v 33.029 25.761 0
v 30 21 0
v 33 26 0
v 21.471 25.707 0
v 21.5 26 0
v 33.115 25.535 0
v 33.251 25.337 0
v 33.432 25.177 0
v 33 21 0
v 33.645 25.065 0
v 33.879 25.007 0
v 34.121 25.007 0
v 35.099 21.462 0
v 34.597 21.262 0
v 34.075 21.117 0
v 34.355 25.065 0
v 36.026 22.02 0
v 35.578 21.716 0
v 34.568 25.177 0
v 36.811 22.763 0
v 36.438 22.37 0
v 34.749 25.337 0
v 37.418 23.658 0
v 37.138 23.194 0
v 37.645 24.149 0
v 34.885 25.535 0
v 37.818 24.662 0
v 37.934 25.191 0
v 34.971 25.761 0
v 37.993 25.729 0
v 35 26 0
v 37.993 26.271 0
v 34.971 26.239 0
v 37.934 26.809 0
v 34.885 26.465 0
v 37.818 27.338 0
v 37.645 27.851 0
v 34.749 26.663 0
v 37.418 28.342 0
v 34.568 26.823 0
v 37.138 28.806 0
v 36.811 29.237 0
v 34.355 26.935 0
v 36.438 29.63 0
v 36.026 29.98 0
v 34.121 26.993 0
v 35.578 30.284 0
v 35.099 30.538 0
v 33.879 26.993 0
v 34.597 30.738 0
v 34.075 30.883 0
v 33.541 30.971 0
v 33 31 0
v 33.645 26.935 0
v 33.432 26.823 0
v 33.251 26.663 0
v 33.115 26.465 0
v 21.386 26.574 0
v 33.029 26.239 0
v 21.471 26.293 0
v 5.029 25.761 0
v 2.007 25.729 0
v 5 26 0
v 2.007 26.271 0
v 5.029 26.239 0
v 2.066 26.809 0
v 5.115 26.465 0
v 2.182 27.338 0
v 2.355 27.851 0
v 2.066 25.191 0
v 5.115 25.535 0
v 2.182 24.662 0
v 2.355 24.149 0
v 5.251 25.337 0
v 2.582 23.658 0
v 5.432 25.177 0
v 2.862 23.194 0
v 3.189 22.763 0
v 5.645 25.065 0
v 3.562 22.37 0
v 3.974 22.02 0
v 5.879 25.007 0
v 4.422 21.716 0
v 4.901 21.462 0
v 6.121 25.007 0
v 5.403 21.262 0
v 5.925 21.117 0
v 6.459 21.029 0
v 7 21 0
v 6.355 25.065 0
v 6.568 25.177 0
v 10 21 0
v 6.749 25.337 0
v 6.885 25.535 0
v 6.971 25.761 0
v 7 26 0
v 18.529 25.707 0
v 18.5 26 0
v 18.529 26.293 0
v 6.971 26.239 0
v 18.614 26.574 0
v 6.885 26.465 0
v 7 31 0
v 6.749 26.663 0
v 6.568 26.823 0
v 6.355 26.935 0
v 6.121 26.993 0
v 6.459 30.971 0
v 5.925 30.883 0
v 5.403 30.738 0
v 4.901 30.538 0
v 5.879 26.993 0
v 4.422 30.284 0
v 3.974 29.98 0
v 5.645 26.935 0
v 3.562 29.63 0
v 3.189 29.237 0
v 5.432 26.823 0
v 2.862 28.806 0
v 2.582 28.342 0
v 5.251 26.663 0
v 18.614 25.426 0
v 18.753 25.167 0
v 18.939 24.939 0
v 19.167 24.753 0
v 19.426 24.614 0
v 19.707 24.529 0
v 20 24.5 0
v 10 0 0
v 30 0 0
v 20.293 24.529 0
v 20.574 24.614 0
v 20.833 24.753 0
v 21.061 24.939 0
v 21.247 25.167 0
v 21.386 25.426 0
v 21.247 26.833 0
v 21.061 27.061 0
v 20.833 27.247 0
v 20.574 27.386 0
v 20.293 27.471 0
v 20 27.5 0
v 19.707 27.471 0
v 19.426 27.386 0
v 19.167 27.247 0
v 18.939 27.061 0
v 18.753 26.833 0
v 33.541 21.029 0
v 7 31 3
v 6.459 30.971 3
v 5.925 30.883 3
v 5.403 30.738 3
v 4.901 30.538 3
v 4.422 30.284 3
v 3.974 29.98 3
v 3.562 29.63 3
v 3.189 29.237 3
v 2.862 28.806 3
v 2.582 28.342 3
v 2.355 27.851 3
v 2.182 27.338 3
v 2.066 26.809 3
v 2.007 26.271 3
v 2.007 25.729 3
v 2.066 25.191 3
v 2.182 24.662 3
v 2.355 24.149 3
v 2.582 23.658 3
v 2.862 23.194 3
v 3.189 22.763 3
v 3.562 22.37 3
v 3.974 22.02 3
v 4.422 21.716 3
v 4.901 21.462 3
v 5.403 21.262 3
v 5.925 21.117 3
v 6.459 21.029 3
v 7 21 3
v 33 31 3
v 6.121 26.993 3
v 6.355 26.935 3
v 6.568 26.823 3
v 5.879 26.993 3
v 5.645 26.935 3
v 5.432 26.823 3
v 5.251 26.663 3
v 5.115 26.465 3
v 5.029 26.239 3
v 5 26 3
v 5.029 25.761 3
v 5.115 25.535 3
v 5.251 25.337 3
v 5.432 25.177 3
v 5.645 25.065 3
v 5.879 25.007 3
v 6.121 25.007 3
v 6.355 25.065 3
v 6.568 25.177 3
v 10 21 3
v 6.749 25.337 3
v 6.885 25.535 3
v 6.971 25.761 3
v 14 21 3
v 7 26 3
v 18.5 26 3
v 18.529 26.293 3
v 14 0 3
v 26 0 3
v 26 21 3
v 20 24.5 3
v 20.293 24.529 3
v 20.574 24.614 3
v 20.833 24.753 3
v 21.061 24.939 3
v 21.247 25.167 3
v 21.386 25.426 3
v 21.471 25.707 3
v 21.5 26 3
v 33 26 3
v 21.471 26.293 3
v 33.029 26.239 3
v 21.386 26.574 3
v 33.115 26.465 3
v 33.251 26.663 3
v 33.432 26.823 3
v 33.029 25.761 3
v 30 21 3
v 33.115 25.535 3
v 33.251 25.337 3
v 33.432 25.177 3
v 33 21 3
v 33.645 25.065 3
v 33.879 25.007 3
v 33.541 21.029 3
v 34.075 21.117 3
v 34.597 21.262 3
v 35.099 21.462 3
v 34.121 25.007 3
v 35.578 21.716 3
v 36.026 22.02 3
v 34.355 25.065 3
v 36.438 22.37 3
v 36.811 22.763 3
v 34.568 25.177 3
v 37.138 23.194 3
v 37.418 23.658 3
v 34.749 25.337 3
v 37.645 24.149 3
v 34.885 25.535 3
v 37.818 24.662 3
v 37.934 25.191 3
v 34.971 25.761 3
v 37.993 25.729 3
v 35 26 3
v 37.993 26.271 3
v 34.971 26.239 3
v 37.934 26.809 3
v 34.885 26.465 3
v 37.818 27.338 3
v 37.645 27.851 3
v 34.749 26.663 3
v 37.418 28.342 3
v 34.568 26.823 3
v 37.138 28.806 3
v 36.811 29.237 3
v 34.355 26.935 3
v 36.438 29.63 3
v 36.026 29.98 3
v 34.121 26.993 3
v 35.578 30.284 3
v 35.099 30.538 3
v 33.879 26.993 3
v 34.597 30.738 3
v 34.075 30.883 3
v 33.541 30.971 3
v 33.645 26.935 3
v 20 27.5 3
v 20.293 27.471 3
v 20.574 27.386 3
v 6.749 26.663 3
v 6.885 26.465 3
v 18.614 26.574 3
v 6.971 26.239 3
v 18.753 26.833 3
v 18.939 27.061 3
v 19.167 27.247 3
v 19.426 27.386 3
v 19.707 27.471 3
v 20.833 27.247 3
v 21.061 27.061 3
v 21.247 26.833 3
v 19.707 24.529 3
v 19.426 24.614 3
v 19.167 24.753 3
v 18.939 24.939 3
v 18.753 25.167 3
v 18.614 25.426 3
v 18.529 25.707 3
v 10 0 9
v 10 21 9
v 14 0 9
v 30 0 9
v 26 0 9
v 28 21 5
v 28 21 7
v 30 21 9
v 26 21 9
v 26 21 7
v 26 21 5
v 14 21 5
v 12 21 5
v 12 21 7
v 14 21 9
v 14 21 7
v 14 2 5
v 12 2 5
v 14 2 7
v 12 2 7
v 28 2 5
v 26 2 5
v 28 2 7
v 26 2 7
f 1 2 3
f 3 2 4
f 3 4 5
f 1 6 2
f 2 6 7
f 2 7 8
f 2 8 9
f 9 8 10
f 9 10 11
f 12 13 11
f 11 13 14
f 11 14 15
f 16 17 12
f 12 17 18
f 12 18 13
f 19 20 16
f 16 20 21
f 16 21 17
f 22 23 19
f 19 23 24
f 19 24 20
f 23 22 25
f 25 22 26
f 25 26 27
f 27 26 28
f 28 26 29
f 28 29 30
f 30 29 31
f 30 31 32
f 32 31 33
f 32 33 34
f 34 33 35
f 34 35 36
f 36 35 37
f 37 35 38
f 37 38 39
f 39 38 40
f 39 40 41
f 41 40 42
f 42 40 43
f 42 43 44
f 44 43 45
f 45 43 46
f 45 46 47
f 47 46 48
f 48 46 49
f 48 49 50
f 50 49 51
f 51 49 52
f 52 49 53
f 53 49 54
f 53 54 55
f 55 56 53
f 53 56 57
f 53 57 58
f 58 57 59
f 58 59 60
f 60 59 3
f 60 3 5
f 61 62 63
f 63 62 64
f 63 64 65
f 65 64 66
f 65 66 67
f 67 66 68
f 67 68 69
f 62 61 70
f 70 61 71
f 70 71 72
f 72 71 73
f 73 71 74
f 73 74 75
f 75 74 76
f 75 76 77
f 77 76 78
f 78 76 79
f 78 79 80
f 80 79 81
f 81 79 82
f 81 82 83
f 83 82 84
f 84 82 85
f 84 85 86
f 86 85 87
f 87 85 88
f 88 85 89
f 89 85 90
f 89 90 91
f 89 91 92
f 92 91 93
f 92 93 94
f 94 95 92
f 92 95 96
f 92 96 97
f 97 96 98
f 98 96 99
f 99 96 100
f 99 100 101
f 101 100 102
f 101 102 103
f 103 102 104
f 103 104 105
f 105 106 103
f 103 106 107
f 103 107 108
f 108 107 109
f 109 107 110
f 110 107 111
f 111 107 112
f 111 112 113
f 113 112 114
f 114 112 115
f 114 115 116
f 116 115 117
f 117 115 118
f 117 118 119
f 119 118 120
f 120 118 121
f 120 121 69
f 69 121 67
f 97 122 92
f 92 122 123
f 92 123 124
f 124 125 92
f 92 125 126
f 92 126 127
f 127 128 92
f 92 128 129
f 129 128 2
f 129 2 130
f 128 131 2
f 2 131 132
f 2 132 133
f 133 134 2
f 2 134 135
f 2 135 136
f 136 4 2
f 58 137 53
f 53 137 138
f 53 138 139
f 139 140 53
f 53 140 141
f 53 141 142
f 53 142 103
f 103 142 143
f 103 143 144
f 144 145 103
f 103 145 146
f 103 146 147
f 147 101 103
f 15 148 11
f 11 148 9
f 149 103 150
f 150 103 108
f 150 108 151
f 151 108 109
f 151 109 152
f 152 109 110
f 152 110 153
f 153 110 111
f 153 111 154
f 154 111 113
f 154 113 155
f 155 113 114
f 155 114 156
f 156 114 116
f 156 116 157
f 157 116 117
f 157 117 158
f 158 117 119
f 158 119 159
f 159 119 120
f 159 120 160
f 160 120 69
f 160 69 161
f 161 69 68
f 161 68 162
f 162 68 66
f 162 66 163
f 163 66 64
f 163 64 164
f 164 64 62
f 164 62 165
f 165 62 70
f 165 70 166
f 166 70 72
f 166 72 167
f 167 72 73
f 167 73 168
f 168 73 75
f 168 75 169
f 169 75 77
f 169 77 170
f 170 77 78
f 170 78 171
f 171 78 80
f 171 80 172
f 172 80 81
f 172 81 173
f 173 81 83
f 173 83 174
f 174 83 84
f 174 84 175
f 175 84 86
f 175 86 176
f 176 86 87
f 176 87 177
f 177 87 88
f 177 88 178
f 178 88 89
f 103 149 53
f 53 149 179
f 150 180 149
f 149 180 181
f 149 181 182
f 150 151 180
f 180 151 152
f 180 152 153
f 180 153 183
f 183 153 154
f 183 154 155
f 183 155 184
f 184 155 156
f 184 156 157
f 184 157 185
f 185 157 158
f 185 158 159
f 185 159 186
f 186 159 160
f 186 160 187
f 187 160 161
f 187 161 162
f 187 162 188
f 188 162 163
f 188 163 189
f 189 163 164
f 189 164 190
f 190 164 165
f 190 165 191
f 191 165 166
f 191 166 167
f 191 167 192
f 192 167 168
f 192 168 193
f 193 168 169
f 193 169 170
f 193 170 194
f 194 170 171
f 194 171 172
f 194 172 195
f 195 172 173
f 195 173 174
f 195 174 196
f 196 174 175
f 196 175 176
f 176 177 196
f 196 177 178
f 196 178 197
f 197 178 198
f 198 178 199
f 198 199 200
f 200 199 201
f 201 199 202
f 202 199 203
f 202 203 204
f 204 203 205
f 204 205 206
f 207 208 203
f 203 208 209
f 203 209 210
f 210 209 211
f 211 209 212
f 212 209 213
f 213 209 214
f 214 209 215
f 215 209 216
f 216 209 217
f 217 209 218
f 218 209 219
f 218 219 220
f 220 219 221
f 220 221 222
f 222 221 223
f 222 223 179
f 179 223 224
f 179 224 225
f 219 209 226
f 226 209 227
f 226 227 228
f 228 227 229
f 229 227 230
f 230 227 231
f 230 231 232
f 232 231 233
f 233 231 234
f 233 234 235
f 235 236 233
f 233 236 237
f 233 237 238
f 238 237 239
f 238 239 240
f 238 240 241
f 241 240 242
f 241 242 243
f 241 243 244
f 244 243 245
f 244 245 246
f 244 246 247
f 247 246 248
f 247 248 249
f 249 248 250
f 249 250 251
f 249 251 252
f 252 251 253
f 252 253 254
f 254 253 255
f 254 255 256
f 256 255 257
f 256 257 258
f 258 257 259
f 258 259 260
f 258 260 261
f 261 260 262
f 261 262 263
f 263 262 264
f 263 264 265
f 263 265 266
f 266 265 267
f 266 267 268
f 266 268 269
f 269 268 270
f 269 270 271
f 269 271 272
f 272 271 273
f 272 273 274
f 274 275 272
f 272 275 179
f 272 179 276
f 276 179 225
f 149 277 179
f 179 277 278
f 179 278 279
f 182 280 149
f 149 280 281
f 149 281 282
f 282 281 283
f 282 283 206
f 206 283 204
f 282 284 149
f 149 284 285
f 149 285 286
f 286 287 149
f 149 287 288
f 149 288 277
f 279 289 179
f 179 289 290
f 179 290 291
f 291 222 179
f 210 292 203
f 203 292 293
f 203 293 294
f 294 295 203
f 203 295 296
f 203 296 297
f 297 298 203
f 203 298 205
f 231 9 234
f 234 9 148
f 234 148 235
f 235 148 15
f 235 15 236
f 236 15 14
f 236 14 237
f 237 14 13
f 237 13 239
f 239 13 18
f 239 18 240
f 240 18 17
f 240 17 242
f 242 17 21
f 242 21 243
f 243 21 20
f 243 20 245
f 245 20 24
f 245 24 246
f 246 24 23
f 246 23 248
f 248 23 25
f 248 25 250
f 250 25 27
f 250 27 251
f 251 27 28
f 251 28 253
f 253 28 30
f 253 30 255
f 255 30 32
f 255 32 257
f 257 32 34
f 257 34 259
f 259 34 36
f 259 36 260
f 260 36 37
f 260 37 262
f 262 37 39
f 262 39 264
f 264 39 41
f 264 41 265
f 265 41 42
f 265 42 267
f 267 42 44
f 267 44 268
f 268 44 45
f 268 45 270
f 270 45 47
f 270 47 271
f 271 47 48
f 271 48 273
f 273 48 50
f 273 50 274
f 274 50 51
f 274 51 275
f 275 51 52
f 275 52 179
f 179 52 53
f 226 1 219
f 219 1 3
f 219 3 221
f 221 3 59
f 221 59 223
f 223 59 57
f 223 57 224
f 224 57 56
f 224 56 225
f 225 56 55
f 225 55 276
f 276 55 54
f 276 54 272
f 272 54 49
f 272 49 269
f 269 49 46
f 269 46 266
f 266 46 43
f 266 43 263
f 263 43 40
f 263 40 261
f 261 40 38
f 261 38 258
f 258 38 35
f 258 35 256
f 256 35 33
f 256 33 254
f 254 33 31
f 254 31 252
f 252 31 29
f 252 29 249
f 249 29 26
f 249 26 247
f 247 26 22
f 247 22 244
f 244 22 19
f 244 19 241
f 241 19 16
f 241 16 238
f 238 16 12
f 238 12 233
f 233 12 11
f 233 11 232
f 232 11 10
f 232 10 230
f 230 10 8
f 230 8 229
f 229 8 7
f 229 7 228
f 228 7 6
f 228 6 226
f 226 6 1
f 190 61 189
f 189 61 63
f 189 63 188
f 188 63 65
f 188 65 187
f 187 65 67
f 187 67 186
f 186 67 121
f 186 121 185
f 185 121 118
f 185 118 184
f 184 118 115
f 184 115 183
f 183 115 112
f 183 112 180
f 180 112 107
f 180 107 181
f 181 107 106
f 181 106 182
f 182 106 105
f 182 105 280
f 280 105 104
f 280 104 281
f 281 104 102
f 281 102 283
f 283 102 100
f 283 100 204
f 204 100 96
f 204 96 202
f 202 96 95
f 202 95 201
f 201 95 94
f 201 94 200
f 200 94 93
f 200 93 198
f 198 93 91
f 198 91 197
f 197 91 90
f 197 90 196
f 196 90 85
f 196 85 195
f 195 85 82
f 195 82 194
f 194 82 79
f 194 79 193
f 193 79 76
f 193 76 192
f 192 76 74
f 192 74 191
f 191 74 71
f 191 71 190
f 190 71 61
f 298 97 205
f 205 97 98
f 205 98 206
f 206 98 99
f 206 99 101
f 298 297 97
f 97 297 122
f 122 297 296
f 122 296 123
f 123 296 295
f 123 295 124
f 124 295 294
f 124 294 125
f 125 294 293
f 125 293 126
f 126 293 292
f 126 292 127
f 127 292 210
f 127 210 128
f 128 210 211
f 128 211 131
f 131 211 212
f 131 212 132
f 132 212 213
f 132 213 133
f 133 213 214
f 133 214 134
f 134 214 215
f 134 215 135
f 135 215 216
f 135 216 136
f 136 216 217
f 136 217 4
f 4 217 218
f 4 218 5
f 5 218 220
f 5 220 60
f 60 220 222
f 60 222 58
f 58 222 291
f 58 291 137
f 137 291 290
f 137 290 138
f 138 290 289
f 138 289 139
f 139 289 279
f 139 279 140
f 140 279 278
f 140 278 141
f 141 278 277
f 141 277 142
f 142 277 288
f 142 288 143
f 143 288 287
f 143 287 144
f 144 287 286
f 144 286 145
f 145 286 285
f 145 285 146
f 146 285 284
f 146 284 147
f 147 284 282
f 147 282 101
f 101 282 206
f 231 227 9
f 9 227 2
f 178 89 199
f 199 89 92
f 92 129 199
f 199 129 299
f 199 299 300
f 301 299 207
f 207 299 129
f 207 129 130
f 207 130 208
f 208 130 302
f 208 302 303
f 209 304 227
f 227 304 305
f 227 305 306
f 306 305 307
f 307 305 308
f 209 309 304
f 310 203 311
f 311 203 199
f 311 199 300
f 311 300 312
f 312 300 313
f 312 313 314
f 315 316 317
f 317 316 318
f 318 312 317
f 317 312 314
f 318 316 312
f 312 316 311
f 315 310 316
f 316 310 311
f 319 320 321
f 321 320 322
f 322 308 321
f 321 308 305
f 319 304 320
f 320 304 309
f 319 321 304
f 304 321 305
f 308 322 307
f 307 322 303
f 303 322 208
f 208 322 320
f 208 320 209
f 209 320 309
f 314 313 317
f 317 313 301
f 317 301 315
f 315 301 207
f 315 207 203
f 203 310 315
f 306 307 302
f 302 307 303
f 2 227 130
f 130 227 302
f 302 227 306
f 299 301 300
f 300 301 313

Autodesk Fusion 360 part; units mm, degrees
sketch "Sketch1" plane through (0, 0, 0) normal (0, 0, 1) x (1, 0, 0)
  line L0 (0, 0) -> (35, 0)
  line L1 (35, 0) -> (35, 35)
  line L2 (35, 35) -> (0, 35)
  line L3 (0, 35) -> (0, 0)
  dimension "d1" = 35
  dimension "d2" = 35
extrude "Extrude1" add sketch "Sketch1" along normal blind 3
sketch "Sketch2" plane through (0, 0, 3) normal (0, 0, 1) x (-1, 0, 0)
  line L0 (0, -35) -> (0, 0)
  line L1 (0, 0) -> (-35, 0)
  line L2 (-35, 0) -> (-35, -35)
  line L3 (-35, -35) -> (0, -35)
  line L4 (-10, -35) -> (-35, -35)
  line L5 (-35, -35) -> (-35, -17.5)
  line L6 (-35, -17.5) -> (-10, -17.5)
  line L7 (-10, -17.5) -> (-10, -35)
  dimension "d5" = 25
  dimension "d6" = 17.5
extrude "Extrude2" cut sketch "Sketch2" against normal blind 3 contours L2 L3 L4 L5 L6 L7
sketch "Sketch6" plane through (0, 0, 3) normal (0, 0, 1) x (-1, 0, 0)
  line L0 (-35, -17.5) -> (-10, -17.5)
  line L1 (-10, -17.5) -> (-10, -35)
  line L2 (-10, -35) -> (0, -35)
  line L3 (0, -35) -> (0, 0)
  line L4 (0, 0) -> (-35, 0)
  line L5 (-35, 0) -> (-35, -17.5)
  line L6 (-10, -17.5) -> (-14, -17.5)
  line L7 (-14, -17.5) -> (-14, 0)
  line L8 (-14, 0) -> (-10, 0)
  line L9 (-10, 0) -> (-10, -17.5)
  dimension "d23" = 4
  dimension "d24" = 17.5
extrude "Extrude6" add sketch "Sketch6" along normal blind 6 contours L0 L4 L6 L7 L8 L9
extrude "Extrude7" cut 1 faces at (35, 5.8333, 1) along direction (-1, 0, 0) blind 5
sketch "Sketch7" plane through (0, 0, 3) normal (0, 0, 1) x (-1, 0, 0)
  line L0 (-30, 0) -> (-30, -17.5)
  line L1 (-30, -17.5) -> (-14, -17.5)
  line L2 (-14, -17.5) -> (-14, 0)
  line L3 (-14, 0) -> (-30, 0)
  line L4 (-30, -17.5) -> (-26, -17.5)
  line L5 (-26, -17.5) -> (-26, 0)
  line L6 (-26, 0) -> (-30, 0)
  line L7 (-30, 0) -> (-30, -17.5)
  dimension "d29" = 4
  dimension "d30" = 17.5
extrude "Extrude8" add sketch "Sketch7" along normal blind 6 contours L0 L1 L3 L4 L5 L6 L7
extrude "Extrude9" add 1 faces at (28.6667, 17.5, 4) along direction (0, 1, 0) blind 3.5
sketch "Sketch8" plane through (14, 0, 0) normal (1, 0, 0) x (0, 1, 0)
  line L0 (0, 3) -> (21, 3)
  line L1 (21, 3) -> (21, 9)
  line L2 (21, 9) -> (0, 9)
  line L3 (0, 9) -> (0, 3)
  line L4 (0, 7) -> (21, 7)
  line L5 (21, 7) -> (21, 5)
  line L6 (21, 5) -> (0, 5)
  line L7 (0, 5) -> (0, 7)
  dimension "d35" = 2
  dimension "d36" = 2
extrude "Extrude10" cut sketch "Sketch8" against normal blind 2 contours L1 L3 L4 L5 L6 L7
sketch "Sketch9" plane through (26, 0, 0) normal (-1, 0, 0) x (0, -1, 0)
  line L0 (-21, 3) -> (0, 3)
  line L1 (0, 3) -> (0, 9)
  line L2 (0, 9) -> (-21, 9)
  line L3 (-21, 9) -> (-21, 3)
  line L4 (-21, 7) -> (0, 7)
  line L5 (0, 7) -> (0, 5)
  line L6 (0, 5) -> (-21, 5)
  line L7 (-21, 5) -> (-21, 7)
  dimension "d39" = 2
  dimension "d40" = 2
extrude "Extrude11" cut sketch "Sketch9" against normal blind 2 contours L1 L3 L4 L5 L6 L7
sketch "Sketch10" plane through (0, 0, 5) normal (0, 0, 1) x (-1, 0, 0)
  line L0 (-26, -21) -> (-26, 0)
  line L1 (-26, 0) -> (-28, 0)
  line L2 (-28, 0) -> (-28, -21)
  line L3 (-28, -21) -> (-26, -21)
  line L4 (-26, 0) -> (-28, 0)
  line L5 (-28, 0) -> (-28, -2)
  line L6 (-28, -2) -> (-26, -2)
  line L7 (-26, -2) -> (-26, 0)
  dimension "d43" = 2
  dimension "d44" = 2
extrude "Extrude12" add sketch "Sketch10" along normal blind 2 contours L0 L1 L2 L4 L5 L6 L7
sketch "Sketch11" plane through (0, 0, 5) normal (0, 0, 1) x (-1, 0, 0)
  line L0 (-14, 0) -> (-14, -21)
  line L1 (-14, -21) -> (-12, -21)
  line L2 (-12, -21) -> (-12, 0)
  line L3 (-12, 0) -> (-14, 0)
  line L4 (-14, 0) -> (-12, 0)
  line L5 (-12, 0) -> (-12, -2)
  line L6 (-12, -2) -> (-14, -2)
  line L7 (-14, -2) -> (-14, 0)
  dimension "d47" = 2
  dimension "d48" = 2
extrude "Extrude13" add sketch "Sketch11" along normal blind 2 contours L0 L2 L3 L4 L5 L6 L7
sketch "Sketch14" plane through (0, 21, 0) normal (0, 1, 0) x (-1, 0, 0)
  line L0 (-26, 5) -> (-28, 5)
  line L1 (-28, 5) -> (-28, 7)
  line L2 (-28, 7) -> (-26, 7)
  line L3 (-26, 7) -> (-26, 9)
  line L4 (-26, 9) -> (-30, 9)
  line L5 (-30, 9) -> (-30, 0)
  line L6 (-30, 0) -> (-10, 0)
  line L7 (-10, 0) -> (-10, 3)
  line L8 (-10, 3) -> (-10, 9)
  line L9 (-10, 9) -> (-14, 9)
  line L10 (-14, 9) -> (-14, 7)
  line L11 (-14, 7) -> (-12, 7)
  line L12 (-12, 7) -> (-12, 5)
  line L13 (-12, 5) -> (-14, 5)
  line L14 (-14, 5) -> (-14, 3)
  line L15 (-14, 3) -> (-26, 3)
  line L16 (-26, 3) -> (-26, 5)
  line L17 (-10, 3) -> (-30, 3)
  line L18 (-30, 3) -> (-30, 0)
  line L19 (-30, 0) -> (-10, 0)
  line L20 (-10, 0) -> (-10, 3)
  dimension "d61" = 20
extrude "Extrude17" add sketch "Sketch14" along normal blind 10 contours L5 L6 L7 L15 L17 L18 L19 L20
extrude "Extrude18" cut 1 faces at (0, 23.3333, 1) along direction (1, 0, 0) blind 10
sketch "Sketch15" plane through (10, 0, 0) normal (-1, 0, 0) x (0, -1, 0)
  line L0 (0, 0) -> (0, 9)
  line L1 (0, 9) -> (-21, 9)
  line L2 (-21, 9) -> (-21, 3)
  line L3 (-21, 3) -> (-31, 3)
  line L4 (-31, 3) -> (-31, 0)
  line L5 (-31, 0) -> (0, 0)
  line L6 (-21, 3) -> (-31, 3)
  line L7 (-31, 3) -> (-31, 0)
  line L8 (-31, 0) -> (-21, 0)
  line L9 (-21, 0) -> (-21, 3)
extrude "Extrude19" add sketch "Sketch15" along normal blind 8 contours L3 L4 L5 L6 L7 L8 L9
sketch "Sketch16" plane through (30, 0, 0) normal (1, 0, 0) x (0, 1, 0)
  line L0 (21, 9) -> (0, 9)
  line L1 (0, 9) -> (0, 0)
  line L2 (0, 0) -> (31, 0)
  line L3 (31, 0) -> (31, 3)
  line L4 (31, 3) -> (21, 3)
  line L5 (21, 3) -> (21, 9)
  line L6 (21, 3) -> (31, 3)
  line L7 (31, 3) -> (31, 0)
  line L8 (31, 0) -> (21, 0)
  line L9 (21, 0) -> (21, 3)
  dimension "d68" = 10
extrude "Extrude20" add sketch "Sketch16" along normal blind 8 contours L2 L3 L4 L6 L7 L8 L9
sketch "Sketch17" plane through (0, 0, 0) normal (0, 0, -1) x (1, 0, 0)
  line L0 (10, 0) -> (10, -21)
  line L1 (10, -21) -> (2, -21)
  line L2 (2, -21) -> (2, -31)
  line L3 (2, -31) -> (38, -31)
  line L4 (38, -31) -> (38, -21)
  line L5 (38, -21) -> (30, -21)
  line L6 (30, -21) -> (30, 0)
  line L7 (30, 0) -> (10, 0)
  circle A0 centre (20, -26) radius 1.5
  dimension "d71" = 3
  dimension "d72" = 5
  dimension "d73" = 10
extrude "Extrude21" cut sketch "Sketch17" against normal blind 3 contours A0
sketch "Sketch18" plane through (0, 0, 0) normal (0, 0, -1) x (1, 0, 0)
  circle A0 centre (20, -26) radius 1.5
  line L0 (10, 0) -> (10, -21)
  line L1 (10, -21) -> (2, -21)
  line L2 (2, -21) -> (2, -31)
  line L3 (2, -31) -> (38, -31)
  line L4 (38, -31) -> (38, -21)
  line L5 (38, -21) -> (30, -21)
  line L6 (30, -21) -> (30, 0)
  line L7 (30, 0) -> (10, 0)
  circle A1 centre (6, -26) radius 1
  dimension "d76" = 2
  dimension "d77" = 14
extrude "Extrude22" cut sketch "Sketch18" against normal blind 3 contours A1
sketch "Sketch19" plane through (0, 0, 0) normal (0, 0, -1) x (1, 0, 0)
  circle A0 centre (6, -26) radius 1
  circle A1 centre (20, -26) radius 1.5
  line L0 (10, 0) -> (10, -21)
  line L1 (10, -21) -> (2, -21)
  line L2 (2, -21) -> (2, -31)
  line L3 (2, -31) -> (38, -31)
  line L4 (38, -31) -> (38, -21)
  line L5 (38, -21) -> (30, -21)
  line L6 (30, -21) -> (30, 0)
  line L7 (30, 0) -> (10, 0)
  circle A2 centre (34, -26) radius 1
  dimension "d80" = 2
  dimension "d81" = 14
  dimension "d82" = 5
extrude "Extrude23" cut sketch "Sketch19" against normal blind 3 contours A2
fillet "Fillet1" radius 5 1 edges at (38, 21, 1.5)
fillet "Fillet2" radius 5 1 edges at (38, 31, 1.5)
fillet "Fillet3" radius 5 1 edges at (2, 31, 1.5)
fillet "Fillet4" radius 5 1 edges at (2, 21, 1.5)
